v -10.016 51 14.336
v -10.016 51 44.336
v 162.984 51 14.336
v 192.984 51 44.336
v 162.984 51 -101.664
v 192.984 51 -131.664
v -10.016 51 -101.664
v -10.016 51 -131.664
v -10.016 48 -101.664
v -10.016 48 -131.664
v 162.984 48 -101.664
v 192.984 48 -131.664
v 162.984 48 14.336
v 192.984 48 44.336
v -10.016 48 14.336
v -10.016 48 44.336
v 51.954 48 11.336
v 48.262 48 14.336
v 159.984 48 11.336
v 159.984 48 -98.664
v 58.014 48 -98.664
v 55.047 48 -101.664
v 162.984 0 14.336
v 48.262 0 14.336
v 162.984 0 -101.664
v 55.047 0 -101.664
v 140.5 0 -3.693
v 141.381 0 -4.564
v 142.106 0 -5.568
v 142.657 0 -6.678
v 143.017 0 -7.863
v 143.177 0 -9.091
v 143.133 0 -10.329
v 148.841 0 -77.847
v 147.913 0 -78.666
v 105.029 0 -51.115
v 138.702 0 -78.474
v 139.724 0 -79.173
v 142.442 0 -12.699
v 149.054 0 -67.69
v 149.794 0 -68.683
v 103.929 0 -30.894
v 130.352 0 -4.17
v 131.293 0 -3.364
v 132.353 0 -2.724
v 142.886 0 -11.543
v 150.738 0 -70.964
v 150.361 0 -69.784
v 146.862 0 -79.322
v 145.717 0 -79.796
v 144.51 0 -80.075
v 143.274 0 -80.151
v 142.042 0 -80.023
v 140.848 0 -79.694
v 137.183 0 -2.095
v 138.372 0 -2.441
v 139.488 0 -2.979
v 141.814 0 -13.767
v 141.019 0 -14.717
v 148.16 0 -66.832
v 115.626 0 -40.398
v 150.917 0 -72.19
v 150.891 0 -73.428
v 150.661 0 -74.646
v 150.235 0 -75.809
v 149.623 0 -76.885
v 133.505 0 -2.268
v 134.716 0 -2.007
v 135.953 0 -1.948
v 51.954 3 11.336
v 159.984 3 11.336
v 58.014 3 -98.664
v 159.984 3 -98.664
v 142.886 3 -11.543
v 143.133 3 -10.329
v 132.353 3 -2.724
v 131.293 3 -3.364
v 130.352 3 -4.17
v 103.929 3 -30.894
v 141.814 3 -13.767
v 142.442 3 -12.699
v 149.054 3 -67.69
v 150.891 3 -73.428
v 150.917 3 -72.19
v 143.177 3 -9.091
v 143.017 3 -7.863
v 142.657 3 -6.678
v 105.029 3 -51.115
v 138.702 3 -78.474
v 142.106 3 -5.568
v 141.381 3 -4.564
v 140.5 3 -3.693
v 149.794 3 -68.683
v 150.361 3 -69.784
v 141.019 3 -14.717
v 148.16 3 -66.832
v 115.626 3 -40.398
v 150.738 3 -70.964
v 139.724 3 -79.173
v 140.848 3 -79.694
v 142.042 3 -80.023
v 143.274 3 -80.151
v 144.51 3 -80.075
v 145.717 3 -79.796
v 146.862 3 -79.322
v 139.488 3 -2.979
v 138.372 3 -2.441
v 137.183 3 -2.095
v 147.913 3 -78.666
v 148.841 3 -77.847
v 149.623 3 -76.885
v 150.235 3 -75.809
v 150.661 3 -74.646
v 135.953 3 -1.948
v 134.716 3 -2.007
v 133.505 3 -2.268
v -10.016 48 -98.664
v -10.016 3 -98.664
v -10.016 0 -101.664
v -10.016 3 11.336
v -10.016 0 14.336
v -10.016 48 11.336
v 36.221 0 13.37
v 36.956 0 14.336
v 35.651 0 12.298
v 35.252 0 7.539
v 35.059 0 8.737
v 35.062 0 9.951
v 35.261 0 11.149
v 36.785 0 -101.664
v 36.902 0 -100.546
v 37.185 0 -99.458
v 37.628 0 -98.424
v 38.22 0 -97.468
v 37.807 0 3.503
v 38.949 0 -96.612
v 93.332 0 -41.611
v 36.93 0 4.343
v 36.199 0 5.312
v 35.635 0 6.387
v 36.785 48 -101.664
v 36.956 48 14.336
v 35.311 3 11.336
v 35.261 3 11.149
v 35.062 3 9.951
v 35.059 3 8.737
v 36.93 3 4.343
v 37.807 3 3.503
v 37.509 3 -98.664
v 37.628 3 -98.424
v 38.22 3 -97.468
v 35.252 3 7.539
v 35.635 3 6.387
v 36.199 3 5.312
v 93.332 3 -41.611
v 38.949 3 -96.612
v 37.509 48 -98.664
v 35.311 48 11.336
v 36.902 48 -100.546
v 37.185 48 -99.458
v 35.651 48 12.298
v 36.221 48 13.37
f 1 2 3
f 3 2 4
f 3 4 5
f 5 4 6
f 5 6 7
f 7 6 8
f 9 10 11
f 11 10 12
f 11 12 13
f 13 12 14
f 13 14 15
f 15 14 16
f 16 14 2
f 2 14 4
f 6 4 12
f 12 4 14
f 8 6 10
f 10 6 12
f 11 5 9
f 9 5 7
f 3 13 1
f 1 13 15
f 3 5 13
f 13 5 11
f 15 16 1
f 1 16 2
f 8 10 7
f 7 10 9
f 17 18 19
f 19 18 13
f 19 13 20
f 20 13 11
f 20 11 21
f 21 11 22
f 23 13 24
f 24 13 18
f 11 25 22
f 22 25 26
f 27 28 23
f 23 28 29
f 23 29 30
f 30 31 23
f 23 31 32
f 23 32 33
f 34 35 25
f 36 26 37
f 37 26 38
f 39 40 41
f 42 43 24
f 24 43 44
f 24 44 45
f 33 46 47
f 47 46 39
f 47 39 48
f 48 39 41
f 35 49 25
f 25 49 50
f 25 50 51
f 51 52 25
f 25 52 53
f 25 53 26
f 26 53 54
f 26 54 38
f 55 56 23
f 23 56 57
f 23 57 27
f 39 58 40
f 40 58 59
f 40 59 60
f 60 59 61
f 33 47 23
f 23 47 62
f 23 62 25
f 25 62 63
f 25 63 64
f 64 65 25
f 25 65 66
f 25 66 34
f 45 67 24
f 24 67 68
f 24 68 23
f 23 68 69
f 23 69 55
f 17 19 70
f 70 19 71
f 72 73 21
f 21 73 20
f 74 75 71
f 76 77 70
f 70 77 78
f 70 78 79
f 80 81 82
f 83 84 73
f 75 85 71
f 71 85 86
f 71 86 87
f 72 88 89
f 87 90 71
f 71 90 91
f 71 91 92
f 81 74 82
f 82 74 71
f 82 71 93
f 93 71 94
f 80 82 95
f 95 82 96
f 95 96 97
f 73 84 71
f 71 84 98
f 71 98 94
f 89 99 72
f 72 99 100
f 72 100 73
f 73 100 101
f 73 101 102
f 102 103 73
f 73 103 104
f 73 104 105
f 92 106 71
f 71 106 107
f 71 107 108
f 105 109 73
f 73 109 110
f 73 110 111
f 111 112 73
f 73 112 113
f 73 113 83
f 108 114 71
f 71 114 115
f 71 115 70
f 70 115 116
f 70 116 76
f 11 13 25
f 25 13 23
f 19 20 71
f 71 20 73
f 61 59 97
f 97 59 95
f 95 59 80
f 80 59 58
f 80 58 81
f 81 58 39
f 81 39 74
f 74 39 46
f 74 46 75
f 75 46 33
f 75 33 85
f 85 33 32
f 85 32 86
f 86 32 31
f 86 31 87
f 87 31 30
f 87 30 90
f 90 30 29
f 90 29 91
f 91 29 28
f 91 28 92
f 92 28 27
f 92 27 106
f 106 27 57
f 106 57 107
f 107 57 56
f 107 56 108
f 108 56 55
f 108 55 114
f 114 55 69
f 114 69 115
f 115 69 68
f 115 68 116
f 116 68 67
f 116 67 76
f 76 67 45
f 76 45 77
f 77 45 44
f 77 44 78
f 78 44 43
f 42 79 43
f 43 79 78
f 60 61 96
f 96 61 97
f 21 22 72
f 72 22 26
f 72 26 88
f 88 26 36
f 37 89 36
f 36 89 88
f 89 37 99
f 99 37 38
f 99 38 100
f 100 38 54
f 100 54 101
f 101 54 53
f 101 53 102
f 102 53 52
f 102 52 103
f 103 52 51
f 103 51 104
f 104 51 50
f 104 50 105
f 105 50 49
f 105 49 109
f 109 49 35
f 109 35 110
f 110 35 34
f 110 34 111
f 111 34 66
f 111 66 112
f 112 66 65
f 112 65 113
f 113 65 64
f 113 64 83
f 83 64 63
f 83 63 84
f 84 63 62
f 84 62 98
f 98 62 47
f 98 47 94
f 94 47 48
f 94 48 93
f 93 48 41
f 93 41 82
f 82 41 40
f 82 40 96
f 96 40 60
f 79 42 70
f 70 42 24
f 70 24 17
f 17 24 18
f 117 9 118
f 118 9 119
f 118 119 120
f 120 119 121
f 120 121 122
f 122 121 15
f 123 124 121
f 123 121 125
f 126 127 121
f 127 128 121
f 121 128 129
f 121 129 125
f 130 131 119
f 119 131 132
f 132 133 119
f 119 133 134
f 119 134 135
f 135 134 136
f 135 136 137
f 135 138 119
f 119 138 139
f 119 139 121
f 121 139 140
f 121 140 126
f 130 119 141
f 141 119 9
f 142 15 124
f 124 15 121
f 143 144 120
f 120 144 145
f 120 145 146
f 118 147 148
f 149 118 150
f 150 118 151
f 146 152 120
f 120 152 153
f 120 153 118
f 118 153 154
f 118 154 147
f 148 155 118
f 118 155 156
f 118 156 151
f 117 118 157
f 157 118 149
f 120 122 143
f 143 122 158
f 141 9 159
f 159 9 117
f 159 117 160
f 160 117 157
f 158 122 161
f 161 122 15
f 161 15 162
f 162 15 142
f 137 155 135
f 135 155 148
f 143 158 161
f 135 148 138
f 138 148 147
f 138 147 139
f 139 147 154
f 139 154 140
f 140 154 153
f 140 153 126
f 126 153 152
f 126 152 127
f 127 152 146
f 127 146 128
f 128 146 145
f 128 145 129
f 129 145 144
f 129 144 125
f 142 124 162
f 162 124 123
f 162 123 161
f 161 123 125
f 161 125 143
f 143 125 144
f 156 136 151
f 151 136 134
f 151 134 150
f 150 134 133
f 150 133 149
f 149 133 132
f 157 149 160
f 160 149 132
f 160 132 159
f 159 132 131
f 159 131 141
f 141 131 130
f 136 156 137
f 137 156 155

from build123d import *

# Parameters (mm, degrees)
SKETCH1_W           = 176
SKETCH1_H           = 116
BOSS_EXTRUDE1_DEPTH = 48
SHELL1_T            = -3
SKETCH2_W           = 236
SKETCH2_H           = 176
SKETCH2_W_2         = 176
SKETCH2_H_2         = 116
BOSS_EXTRUDE2_DEPTH = 3
CUT_EXTRUDE1_DEPTH  = 240.121603348
CUT_EXTRUDE2_DEPTH  = 240.121603348


with BuildPart() as part:
    # Sketch1 → Boss-Extrude1 (new body)
    with BuildSketch(Plane(origin=(0, 0, 0), x_dir=(1, 0, 0), z_dir=(0, 1, 0))):
        with Locations((74.983600324, 43.664236579)):
            Rectangle(SKETCH1_W, SKETCH1_H)
    extrude(amount=BOSS_EXTRUDE1_DEPTH)

    # Shell1
    shell1_openings = [part.faces().sort_by_distance(p)[0] for p in [
        (74.983600324, 48, -43.664236579),
    ]]
    offset(amount=SHELL1_T, openings=shell1_openings, kind=Kind.INTERSECTION)


with BuildPart() as body_2:
    # Sketch2 → Boss-Extrude2 (new body)
    with BuildSketch(Plane(origin=(0, 48, 0), x_dir=(1, 0, 0), z_dir=(0, 1, 0))):
        with Locations((74.983600324, 43.664236579)):
            Rectangle(SKETCH2_W, SKETCH2_H)
        with Locations((74.983600324, 43.664236579)):
            Rectangle(SKETCH2_W_2, SKETCH2_H_2, mode=Mode.SUBTRACT)
    extrude(amount=BOSS_EXTRUDE2_DEPTH)


with BuildPart() as cut_extrude1_tool:
    # Sketch5 → Cut-Extrude1 (new, through all)
    with BuildSketch(Plane(origin=(0, 51, 0), x_dir=(1, 0, 0), z_dir=(0, 1, 0))):
        Polygon((-10.016399676, -51.335763421), (-10.016399676, 131.664236579), (-43.016399676, 131.664236579), (-43.016399676, -84.335763421), (-10.016399676, -84.335763421), align=None)
    extrude(amount=-CUT_EXTRUDE1_DEPTH)


with BuildPart() as part_1:
    add(part.part)

    # Cut-Extrude1: cut by cut_extrude1_tool
    add(cut_extrude1_tool.part, mode=Mode.SUBTRACT)

    # Sketch6 → Cut-Extrude2 (cut, through all)
    with BuildSketch(Plane.XZ):
        with BuildLine():
            Line((47.265635004, 15.145139053), (148.160455019, -66.831902209))
            ThreePointArc((148.160455019, -66.831902209), (149.251865332, -77.382201898), (138.701565643, -78.473612211))
            Line((138.701565643, -78.473612211), (37.806745628, 3.503429052))
            ThreePointArc((37.806745628, 3.503429052), (36.715335315, 14.053728741), (47.265635004, 15.145139053))
        make_face()
        with BuildLine():
            Line((141.018508979, -14.716854507), (49.614998177, -107.158177589))
            ThreePointArc((49.614998177, -107.158177589), (39.008565453, -107.218051374), (38.948691668, -96.61161865))
            Line((38.948691668, -96.61161865), (130.35220247, -4.170295568))
            ThreePointArc((130.35220247, -4.170295568), (140.958635194, -4.110421783), (141.018508979, -14.716854507))
        make_face()
    extrude(amount=-CUT_EXTRUDE2_DEPTH, mode=Mode.SUBTRACT)


with BuildPart() as body_2_1:
    add(body_2.part)

    # Cut-Extrude1: cut by cut_extrude1_tool
    add(cut_extrude1_tool.part, mode=Mode.SUBTRACT)


with BuildPart() as cut_extrude2_piece_1:
    # of the separate pieces the step leaves, piece 1, a body of its own (cut_extrude2_pieces)
    add(part_1.part.solids().sort_by_distance((48.261789628, 0, 14.335763421))[0])


with BuildPart() as cut_extrude2_piece_2:
    # of the separate pieces the step leaves, piece 2, a body of its own (cut_extrude2_pieces)
    add(part_1.part.solids().sort_by_distance((-10.016399676, 0, 14.335763421))[0])


solid = Compound([body_2_1.part, cut_extrude2_piece_1.part, cut_extrude2_piece_2.part])
